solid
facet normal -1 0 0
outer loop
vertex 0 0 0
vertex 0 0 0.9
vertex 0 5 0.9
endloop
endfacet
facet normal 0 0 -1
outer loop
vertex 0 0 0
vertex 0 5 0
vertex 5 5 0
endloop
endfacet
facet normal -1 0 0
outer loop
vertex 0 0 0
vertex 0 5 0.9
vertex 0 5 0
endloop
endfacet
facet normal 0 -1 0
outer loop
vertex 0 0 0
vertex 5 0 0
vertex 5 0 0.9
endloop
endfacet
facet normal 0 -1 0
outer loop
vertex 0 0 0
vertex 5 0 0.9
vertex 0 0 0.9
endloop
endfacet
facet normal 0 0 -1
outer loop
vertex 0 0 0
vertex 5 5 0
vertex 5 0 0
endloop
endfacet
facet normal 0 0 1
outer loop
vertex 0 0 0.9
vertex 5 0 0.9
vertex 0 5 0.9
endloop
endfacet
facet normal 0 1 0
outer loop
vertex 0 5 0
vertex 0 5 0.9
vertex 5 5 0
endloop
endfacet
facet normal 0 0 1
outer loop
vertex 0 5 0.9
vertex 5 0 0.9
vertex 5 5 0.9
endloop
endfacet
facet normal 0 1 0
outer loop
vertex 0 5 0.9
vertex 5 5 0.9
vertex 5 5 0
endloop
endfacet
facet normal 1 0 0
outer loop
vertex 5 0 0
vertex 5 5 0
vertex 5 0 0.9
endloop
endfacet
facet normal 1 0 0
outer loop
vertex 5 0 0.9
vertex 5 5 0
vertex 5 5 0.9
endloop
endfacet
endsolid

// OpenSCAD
/* Warning, this is a very basic generator with a lot of approximation 
input data : [VQFN, SKX, 5x5x0.9mm, 32, , A, C04-00462A]
generated by com.zoubworld.electronics.cad.model3d.Basic
Date : Sun Feb 15 10:50:48 CET 2026
*/

//body
color("black")
translate([0,0,0])
cube([5.0,5.0,0.9], center=false);
